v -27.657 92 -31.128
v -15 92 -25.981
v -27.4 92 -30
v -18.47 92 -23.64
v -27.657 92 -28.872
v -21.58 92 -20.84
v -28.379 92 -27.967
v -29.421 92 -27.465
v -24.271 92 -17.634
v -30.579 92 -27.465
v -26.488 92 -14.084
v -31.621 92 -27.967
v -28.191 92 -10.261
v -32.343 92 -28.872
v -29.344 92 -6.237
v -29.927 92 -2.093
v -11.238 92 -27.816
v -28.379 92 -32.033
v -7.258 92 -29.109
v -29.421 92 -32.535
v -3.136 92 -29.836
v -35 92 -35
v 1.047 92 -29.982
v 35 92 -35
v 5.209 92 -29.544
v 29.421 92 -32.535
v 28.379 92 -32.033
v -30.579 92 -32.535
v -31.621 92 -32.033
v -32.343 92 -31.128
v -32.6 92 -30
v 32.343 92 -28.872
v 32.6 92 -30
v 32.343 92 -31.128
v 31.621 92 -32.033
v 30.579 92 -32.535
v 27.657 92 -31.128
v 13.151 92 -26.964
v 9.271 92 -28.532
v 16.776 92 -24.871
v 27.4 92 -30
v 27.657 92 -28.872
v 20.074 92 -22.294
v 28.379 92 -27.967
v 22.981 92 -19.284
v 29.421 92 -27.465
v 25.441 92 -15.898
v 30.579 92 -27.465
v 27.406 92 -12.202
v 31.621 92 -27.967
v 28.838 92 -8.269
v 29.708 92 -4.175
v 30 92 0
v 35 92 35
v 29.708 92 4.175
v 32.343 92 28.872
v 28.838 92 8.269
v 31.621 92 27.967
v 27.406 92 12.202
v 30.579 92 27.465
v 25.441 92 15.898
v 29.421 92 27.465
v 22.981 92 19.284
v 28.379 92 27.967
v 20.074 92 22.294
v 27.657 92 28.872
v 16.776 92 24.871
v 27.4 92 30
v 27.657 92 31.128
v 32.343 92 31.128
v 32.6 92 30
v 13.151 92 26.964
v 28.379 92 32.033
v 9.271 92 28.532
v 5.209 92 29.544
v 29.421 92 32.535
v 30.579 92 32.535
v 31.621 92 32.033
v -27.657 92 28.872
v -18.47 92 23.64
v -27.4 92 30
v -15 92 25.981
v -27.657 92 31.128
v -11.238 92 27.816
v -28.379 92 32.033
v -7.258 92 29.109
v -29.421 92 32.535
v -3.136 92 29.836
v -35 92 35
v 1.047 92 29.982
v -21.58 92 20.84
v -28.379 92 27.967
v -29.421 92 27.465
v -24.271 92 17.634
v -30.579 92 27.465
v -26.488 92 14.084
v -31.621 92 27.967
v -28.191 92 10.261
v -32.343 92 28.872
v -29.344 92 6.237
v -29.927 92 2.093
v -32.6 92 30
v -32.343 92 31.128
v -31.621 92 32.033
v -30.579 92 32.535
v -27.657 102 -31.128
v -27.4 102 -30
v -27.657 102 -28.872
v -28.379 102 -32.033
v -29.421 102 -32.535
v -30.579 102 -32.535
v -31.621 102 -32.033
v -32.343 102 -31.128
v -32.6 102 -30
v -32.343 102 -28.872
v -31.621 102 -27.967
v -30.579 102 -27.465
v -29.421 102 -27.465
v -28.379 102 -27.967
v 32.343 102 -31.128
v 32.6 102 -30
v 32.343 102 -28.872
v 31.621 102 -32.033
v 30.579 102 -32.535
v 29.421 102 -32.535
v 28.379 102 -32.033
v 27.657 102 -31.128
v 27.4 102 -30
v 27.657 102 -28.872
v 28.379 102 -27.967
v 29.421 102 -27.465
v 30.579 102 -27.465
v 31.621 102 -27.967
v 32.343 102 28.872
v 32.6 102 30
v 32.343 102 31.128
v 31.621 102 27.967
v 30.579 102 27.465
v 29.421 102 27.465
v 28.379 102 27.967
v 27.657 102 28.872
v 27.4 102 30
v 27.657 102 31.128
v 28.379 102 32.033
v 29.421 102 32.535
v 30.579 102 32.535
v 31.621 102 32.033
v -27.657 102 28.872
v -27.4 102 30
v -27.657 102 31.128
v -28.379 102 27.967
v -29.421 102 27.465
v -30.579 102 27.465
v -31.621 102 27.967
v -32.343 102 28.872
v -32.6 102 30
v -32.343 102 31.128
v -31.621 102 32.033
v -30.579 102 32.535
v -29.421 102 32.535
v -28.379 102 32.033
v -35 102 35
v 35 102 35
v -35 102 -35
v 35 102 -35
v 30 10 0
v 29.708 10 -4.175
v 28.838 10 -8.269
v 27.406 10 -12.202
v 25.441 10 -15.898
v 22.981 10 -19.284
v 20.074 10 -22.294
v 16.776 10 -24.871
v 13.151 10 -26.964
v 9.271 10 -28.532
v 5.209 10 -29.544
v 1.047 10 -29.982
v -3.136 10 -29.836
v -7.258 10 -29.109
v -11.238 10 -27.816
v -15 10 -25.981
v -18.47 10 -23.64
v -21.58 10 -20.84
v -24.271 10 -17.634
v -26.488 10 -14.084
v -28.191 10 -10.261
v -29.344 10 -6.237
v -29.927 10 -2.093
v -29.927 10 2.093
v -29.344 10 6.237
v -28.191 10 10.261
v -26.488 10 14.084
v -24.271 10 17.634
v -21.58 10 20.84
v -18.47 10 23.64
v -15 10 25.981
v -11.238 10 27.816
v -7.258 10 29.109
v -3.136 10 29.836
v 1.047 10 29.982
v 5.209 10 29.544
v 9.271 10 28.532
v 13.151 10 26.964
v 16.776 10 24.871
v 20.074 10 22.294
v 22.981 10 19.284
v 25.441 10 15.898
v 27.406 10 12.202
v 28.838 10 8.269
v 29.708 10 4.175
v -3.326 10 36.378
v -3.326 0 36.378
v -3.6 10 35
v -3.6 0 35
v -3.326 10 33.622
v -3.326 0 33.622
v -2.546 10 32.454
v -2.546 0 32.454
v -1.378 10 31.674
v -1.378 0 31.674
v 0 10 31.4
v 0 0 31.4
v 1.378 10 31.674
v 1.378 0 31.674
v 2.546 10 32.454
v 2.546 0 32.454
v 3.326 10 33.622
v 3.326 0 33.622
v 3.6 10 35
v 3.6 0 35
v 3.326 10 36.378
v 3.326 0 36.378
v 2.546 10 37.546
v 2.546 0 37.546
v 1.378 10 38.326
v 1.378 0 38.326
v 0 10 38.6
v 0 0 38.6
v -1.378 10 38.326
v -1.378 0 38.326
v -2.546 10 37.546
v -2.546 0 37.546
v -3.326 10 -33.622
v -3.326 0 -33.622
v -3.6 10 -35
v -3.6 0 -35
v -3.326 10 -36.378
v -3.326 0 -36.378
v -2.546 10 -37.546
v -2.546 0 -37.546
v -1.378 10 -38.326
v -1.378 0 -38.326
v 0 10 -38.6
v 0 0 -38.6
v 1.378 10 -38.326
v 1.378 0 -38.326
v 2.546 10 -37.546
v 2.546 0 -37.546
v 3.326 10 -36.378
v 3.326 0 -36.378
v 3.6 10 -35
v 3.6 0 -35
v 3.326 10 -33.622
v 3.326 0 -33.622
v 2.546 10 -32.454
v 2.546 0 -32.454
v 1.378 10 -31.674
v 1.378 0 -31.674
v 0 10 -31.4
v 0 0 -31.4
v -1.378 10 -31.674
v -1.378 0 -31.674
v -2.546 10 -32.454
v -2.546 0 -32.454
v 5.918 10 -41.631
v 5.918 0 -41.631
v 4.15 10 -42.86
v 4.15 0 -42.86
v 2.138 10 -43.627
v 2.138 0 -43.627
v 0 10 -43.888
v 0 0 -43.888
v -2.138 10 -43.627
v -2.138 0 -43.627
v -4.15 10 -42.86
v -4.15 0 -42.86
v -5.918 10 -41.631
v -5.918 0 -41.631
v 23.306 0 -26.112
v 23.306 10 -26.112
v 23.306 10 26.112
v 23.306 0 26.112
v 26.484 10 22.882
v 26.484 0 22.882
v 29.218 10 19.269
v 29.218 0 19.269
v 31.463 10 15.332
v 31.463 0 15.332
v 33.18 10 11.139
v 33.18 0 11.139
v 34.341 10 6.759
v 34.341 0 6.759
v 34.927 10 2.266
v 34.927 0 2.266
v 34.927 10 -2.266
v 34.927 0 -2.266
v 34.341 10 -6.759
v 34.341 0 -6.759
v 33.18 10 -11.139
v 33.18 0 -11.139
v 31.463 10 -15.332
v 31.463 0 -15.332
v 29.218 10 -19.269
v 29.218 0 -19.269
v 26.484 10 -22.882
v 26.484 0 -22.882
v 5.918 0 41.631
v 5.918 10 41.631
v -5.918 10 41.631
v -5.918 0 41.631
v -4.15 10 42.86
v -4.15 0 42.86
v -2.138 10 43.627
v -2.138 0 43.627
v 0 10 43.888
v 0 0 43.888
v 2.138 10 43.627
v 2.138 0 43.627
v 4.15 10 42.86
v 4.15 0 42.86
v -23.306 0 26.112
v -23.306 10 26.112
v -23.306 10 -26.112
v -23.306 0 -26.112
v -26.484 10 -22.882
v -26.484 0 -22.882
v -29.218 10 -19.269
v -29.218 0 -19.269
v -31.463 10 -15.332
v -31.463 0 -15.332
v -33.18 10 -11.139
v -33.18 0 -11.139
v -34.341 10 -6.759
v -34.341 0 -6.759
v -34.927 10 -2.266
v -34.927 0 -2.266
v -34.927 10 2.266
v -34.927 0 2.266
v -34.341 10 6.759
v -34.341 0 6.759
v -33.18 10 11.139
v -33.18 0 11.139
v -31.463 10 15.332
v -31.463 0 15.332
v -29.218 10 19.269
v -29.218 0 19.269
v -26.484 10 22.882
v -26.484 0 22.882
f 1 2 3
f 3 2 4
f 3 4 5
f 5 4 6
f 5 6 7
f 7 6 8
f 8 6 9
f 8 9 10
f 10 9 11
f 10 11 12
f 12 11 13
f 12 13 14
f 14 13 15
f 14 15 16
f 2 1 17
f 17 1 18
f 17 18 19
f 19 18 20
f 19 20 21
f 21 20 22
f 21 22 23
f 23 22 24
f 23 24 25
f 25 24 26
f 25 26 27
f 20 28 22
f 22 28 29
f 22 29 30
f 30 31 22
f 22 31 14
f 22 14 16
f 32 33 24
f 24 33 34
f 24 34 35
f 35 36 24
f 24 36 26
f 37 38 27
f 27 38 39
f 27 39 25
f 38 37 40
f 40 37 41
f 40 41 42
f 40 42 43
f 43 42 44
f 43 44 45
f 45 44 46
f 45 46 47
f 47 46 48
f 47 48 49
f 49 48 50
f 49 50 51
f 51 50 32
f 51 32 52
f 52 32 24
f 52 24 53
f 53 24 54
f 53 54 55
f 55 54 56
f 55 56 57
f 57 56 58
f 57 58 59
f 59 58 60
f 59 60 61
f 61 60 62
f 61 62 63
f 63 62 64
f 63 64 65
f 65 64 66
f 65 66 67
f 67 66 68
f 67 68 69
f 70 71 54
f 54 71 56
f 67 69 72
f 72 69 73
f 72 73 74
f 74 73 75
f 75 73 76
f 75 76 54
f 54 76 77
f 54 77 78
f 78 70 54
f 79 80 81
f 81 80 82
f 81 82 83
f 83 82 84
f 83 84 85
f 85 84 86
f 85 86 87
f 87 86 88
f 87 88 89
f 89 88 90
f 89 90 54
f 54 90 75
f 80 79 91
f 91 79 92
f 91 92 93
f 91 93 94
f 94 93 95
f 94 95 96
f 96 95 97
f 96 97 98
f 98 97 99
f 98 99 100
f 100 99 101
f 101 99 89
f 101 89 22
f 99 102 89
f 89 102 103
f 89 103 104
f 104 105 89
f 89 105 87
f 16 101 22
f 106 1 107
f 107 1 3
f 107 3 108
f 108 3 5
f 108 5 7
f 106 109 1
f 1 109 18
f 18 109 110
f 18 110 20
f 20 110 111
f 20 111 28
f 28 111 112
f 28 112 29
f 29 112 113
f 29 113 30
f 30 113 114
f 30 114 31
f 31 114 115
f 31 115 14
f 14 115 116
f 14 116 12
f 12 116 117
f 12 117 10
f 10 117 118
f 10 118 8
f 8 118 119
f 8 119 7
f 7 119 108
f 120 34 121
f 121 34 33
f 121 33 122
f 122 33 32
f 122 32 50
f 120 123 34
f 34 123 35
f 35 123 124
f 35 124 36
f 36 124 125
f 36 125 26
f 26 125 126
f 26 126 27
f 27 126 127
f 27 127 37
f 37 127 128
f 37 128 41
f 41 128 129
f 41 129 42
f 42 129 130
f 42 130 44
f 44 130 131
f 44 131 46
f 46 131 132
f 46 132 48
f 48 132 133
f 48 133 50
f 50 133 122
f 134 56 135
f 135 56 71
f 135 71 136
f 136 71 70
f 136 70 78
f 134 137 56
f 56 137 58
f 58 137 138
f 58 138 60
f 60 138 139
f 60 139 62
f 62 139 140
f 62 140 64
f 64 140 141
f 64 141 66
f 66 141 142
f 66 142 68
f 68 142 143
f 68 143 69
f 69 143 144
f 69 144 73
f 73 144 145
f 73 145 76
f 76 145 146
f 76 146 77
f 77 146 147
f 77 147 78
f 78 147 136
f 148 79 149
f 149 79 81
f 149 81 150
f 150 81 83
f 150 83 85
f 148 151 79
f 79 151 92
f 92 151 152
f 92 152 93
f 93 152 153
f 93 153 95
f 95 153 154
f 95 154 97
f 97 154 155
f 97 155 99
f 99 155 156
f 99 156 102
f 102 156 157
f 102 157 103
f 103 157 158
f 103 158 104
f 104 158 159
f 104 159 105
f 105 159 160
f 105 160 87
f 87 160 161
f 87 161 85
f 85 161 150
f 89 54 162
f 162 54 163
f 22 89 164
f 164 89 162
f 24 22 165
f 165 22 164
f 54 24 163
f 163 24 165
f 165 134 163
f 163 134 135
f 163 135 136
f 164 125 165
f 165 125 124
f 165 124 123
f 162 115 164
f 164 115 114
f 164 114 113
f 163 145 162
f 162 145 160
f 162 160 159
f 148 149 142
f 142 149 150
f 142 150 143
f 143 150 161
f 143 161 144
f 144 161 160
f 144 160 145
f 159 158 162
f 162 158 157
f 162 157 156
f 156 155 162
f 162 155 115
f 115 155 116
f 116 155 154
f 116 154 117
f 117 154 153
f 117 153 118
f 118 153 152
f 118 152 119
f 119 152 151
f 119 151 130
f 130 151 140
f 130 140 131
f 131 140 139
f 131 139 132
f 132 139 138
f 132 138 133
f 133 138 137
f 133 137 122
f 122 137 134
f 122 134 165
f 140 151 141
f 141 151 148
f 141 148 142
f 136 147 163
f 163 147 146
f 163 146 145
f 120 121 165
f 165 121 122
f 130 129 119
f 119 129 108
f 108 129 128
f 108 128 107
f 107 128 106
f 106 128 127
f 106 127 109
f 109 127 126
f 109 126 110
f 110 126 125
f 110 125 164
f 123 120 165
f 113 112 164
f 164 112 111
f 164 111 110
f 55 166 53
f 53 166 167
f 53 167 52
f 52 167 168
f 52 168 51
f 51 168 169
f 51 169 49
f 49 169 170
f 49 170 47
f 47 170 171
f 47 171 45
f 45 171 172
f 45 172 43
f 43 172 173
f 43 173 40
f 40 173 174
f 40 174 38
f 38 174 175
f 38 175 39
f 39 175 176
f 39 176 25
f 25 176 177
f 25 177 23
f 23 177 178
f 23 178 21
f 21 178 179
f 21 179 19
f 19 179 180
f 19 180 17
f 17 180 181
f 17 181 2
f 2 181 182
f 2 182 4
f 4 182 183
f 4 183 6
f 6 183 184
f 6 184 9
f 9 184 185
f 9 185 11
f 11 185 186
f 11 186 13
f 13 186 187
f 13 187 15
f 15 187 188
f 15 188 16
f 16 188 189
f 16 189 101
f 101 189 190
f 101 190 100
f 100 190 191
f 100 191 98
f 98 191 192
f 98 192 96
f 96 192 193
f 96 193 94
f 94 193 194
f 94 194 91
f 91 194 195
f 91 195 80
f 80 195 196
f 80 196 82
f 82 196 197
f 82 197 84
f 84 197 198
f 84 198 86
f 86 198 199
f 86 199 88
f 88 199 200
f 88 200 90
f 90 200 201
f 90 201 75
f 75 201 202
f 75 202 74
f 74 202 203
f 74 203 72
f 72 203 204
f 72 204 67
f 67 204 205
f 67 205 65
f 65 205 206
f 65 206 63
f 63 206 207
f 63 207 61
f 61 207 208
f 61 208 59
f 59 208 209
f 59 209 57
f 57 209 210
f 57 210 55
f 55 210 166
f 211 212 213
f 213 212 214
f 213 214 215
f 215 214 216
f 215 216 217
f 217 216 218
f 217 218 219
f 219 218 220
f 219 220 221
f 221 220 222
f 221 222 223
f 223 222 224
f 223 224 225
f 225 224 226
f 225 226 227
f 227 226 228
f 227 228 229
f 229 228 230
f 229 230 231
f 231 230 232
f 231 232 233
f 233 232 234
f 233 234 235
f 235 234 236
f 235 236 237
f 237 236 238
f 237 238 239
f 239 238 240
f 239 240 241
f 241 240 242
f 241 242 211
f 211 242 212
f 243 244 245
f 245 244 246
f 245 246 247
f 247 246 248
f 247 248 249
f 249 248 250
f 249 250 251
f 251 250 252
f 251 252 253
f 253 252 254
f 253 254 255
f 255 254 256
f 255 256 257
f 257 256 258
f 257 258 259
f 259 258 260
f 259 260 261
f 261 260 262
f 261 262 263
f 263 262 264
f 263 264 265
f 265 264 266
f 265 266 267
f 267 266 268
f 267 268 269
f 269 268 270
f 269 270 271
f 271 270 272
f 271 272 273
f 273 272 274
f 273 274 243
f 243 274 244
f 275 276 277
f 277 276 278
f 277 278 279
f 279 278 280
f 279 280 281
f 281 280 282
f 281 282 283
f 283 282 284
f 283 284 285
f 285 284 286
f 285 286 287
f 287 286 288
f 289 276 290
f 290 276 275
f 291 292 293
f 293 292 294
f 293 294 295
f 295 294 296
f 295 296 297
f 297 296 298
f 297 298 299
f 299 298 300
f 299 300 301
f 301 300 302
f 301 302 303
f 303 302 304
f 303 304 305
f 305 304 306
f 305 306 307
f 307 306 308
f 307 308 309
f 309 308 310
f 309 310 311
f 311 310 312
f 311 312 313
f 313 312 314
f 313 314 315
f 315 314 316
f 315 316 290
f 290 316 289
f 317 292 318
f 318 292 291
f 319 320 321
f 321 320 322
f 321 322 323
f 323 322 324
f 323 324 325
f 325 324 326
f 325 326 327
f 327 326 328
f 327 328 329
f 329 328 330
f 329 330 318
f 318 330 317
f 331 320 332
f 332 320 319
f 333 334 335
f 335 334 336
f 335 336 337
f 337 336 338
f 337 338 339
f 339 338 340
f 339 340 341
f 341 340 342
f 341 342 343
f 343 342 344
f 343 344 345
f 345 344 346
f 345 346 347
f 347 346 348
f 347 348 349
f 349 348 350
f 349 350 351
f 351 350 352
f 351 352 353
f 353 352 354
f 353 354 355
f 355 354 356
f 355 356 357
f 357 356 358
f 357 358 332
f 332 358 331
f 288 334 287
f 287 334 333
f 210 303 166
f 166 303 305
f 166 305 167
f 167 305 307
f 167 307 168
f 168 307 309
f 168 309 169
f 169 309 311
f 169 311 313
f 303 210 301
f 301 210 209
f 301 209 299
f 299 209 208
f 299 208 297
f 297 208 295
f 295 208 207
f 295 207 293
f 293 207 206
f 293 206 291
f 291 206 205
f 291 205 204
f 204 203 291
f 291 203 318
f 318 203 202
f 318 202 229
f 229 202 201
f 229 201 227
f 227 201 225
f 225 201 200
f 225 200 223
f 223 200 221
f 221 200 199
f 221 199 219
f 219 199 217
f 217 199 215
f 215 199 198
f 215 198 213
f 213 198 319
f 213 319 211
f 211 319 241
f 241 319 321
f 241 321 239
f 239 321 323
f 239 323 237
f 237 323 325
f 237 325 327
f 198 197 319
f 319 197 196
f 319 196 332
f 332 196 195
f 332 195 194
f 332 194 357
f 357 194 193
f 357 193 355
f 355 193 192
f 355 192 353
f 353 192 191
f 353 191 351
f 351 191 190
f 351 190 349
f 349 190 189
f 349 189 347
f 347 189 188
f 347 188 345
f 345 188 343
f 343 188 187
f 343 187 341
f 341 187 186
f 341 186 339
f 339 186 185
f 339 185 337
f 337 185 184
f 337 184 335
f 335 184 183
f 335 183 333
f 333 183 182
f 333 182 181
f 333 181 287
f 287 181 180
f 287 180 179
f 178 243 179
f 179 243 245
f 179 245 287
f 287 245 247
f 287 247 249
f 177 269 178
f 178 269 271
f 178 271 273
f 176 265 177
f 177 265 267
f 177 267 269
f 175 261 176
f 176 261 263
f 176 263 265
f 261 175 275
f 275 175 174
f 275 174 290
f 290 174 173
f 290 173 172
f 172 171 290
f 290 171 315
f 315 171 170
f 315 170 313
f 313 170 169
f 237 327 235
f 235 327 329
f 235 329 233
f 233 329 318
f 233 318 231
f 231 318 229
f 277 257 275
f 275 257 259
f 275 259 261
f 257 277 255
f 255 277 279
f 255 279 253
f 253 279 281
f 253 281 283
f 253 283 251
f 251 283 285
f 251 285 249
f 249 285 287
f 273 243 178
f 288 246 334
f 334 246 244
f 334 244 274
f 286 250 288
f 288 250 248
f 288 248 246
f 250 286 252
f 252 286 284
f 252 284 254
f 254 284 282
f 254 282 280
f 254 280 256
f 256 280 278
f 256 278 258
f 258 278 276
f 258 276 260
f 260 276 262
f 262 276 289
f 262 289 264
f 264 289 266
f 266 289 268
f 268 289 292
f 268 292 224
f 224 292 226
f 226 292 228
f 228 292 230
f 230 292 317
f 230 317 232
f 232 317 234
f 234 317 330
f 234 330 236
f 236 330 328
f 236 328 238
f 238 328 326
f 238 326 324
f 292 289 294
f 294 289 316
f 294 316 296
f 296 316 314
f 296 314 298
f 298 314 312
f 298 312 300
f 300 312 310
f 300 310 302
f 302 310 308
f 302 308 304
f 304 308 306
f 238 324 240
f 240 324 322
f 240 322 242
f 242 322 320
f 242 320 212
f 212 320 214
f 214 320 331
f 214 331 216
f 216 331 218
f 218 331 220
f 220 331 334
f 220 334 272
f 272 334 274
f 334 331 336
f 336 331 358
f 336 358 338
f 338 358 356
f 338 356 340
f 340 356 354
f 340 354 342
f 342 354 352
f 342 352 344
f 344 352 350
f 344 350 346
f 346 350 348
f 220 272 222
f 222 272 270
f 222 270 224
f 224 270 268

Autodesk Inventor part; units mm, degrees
ref_plane "YZ Plane" through (0, 0, 0) normal (1, 0, 0) x (0, 1, 0)
ref_plane "XZ Plane" through (0, 0, 0) normal (0, 1, 0) x (-1, 0, 0)
ref_plane "XY Plane" through (0, 0, 0) normal (0, 0, 1) x (1, 0, 0)
sketch "Boceto1" plane through (0, 0, 0) normal (0, 1, 0) x (-1, 0, 0)
  circle A0 centre (0, 0) radius 32.5
  arc A1 (23.3059, -26.112) -> (23.3059, 26.112) centre (0, 0) ccw
  circle A2 centre (0, -35) radius 3.6
  circle A3 centre (0, 0) radius 43.5
  arc A4 (8.153, -31.4608) -> (-5.9184, -41.631) centre (0, -35) ccw
  line L0 (23.3059, -26.112) -> (5.9184, -41.631)
  line L1 (-23.3059, -26.112) -> (-5.9184, -41.631)
  arc A5 (5.9184, -41.631) -> (8.153, -31.4608) centre (0, -35) ccw
  arc A6 (-5.9184, -41.631) -> (5.9184, -41.631) centre (0, -35) ccw
  line L2 (0, 0) -> (19.418, 0)
  circle A7 centre (0, 35) radius 3.6
  arc A8 (-5.9184, 41.631) -> (8.153, 31.4608) centre (0, 35) ccw
  line L3 (23.3059, 26.112) -> (5.9184, 41.631)
  line L4 (-23.3059, 26.112) -> (-5.9184, 41.631)
  arc A9 (8.153, 31.4608) -> (5.9184, 41.631) centre (0, 35) ccw
  arc A10 (5.9184, 41.631) -> (-5.9184, 41.631) centre (0, 35) ccw
  arc A11 (23.3059, 26.112) -> (-23.3059, 26.112) centre (0, 0) ccw
  arc A12 (-23.3059, 26.112) -> (-23.3059, -26.112) centre (0, 0) ccw
  dimension "d0" = 65
  dimension "d2" = 7.2
  dimension "d3" = 87
extrude "Extrusión1" add sketch "Boceto1" along normal blind 10 contours A0 A4 A8 | A0 A9 A11 A1 L0 A5 | A8 A0 A7 | A0 A7 A11 A9 | A5 A6 A3 A4 A0 A2 | A0 A2 A4 | A8 A11 A7 A0 | A0 A4 L1 A12 A11 A8 | A11 A7 A8 A10 A3 A9 | A9 L3 A11 | A11 L4 A8 | A6 A3 | A3 A10
sketch "Boceto2" plane through (0, 10, 0) normal (0, 1, 0) x (1, 0, 0)
  circle A0 centre (0, 0) radius 30
  dimension "d7" = 60
extrude "Extrusión2" add sketch "Boceto2" along normal blind 82
sketch "Boceto4" plane through (0, 92, 0) normal (0, 1, 0) x (1, 0, 0)
  line L0 (-35, -35) -> (35, -35)
  line L1 (35, -35) -> (35, 35)
  line L2 (35, 35) -> (-35, 35)
  line L3 (-35, 35) -> (-35, -35)
  line L4 (-35, -35) -> (35, 35) construction
  line L5 (35, -35) -> (-35, 35) construction
  line L6 (30, 30) -> (-30, 30)
  line L7 (-30, 30) -> (-30, -30)
  line L8 (-30, -30) -> (30, -30)
  line L9 (30, -30) -> (30, 30)
  line L10 (30, 30) -> (-30, -30) construction
  line L11 (-30, 30) -> (30, -30) construction
  circle A0 centre (-30, 30) radius 2.6
  circle A1 centre (30, 30) radius 2.6
  circle A2 centre (30, -30) radius 2.6
  circle A3 centre (-30, -30) radius 2.6
  point P0 (0, 0)
  dimension "d13" = 70
  dimension "d14" = 70
  dimension "d15" = 60
  dimension "d16" = 5.2
  dimension "d17" = 5.2
  dimension "d18" = 5.2
  dimension "d19" = 5.2
extrude "Extrusión3" add sketch "Boceto4" along normal blind 10 contours L3 L2 L1 L0 | L6 A1 L9 A2 L8 A3 L7 A0
properties part number "ball-fastening"
